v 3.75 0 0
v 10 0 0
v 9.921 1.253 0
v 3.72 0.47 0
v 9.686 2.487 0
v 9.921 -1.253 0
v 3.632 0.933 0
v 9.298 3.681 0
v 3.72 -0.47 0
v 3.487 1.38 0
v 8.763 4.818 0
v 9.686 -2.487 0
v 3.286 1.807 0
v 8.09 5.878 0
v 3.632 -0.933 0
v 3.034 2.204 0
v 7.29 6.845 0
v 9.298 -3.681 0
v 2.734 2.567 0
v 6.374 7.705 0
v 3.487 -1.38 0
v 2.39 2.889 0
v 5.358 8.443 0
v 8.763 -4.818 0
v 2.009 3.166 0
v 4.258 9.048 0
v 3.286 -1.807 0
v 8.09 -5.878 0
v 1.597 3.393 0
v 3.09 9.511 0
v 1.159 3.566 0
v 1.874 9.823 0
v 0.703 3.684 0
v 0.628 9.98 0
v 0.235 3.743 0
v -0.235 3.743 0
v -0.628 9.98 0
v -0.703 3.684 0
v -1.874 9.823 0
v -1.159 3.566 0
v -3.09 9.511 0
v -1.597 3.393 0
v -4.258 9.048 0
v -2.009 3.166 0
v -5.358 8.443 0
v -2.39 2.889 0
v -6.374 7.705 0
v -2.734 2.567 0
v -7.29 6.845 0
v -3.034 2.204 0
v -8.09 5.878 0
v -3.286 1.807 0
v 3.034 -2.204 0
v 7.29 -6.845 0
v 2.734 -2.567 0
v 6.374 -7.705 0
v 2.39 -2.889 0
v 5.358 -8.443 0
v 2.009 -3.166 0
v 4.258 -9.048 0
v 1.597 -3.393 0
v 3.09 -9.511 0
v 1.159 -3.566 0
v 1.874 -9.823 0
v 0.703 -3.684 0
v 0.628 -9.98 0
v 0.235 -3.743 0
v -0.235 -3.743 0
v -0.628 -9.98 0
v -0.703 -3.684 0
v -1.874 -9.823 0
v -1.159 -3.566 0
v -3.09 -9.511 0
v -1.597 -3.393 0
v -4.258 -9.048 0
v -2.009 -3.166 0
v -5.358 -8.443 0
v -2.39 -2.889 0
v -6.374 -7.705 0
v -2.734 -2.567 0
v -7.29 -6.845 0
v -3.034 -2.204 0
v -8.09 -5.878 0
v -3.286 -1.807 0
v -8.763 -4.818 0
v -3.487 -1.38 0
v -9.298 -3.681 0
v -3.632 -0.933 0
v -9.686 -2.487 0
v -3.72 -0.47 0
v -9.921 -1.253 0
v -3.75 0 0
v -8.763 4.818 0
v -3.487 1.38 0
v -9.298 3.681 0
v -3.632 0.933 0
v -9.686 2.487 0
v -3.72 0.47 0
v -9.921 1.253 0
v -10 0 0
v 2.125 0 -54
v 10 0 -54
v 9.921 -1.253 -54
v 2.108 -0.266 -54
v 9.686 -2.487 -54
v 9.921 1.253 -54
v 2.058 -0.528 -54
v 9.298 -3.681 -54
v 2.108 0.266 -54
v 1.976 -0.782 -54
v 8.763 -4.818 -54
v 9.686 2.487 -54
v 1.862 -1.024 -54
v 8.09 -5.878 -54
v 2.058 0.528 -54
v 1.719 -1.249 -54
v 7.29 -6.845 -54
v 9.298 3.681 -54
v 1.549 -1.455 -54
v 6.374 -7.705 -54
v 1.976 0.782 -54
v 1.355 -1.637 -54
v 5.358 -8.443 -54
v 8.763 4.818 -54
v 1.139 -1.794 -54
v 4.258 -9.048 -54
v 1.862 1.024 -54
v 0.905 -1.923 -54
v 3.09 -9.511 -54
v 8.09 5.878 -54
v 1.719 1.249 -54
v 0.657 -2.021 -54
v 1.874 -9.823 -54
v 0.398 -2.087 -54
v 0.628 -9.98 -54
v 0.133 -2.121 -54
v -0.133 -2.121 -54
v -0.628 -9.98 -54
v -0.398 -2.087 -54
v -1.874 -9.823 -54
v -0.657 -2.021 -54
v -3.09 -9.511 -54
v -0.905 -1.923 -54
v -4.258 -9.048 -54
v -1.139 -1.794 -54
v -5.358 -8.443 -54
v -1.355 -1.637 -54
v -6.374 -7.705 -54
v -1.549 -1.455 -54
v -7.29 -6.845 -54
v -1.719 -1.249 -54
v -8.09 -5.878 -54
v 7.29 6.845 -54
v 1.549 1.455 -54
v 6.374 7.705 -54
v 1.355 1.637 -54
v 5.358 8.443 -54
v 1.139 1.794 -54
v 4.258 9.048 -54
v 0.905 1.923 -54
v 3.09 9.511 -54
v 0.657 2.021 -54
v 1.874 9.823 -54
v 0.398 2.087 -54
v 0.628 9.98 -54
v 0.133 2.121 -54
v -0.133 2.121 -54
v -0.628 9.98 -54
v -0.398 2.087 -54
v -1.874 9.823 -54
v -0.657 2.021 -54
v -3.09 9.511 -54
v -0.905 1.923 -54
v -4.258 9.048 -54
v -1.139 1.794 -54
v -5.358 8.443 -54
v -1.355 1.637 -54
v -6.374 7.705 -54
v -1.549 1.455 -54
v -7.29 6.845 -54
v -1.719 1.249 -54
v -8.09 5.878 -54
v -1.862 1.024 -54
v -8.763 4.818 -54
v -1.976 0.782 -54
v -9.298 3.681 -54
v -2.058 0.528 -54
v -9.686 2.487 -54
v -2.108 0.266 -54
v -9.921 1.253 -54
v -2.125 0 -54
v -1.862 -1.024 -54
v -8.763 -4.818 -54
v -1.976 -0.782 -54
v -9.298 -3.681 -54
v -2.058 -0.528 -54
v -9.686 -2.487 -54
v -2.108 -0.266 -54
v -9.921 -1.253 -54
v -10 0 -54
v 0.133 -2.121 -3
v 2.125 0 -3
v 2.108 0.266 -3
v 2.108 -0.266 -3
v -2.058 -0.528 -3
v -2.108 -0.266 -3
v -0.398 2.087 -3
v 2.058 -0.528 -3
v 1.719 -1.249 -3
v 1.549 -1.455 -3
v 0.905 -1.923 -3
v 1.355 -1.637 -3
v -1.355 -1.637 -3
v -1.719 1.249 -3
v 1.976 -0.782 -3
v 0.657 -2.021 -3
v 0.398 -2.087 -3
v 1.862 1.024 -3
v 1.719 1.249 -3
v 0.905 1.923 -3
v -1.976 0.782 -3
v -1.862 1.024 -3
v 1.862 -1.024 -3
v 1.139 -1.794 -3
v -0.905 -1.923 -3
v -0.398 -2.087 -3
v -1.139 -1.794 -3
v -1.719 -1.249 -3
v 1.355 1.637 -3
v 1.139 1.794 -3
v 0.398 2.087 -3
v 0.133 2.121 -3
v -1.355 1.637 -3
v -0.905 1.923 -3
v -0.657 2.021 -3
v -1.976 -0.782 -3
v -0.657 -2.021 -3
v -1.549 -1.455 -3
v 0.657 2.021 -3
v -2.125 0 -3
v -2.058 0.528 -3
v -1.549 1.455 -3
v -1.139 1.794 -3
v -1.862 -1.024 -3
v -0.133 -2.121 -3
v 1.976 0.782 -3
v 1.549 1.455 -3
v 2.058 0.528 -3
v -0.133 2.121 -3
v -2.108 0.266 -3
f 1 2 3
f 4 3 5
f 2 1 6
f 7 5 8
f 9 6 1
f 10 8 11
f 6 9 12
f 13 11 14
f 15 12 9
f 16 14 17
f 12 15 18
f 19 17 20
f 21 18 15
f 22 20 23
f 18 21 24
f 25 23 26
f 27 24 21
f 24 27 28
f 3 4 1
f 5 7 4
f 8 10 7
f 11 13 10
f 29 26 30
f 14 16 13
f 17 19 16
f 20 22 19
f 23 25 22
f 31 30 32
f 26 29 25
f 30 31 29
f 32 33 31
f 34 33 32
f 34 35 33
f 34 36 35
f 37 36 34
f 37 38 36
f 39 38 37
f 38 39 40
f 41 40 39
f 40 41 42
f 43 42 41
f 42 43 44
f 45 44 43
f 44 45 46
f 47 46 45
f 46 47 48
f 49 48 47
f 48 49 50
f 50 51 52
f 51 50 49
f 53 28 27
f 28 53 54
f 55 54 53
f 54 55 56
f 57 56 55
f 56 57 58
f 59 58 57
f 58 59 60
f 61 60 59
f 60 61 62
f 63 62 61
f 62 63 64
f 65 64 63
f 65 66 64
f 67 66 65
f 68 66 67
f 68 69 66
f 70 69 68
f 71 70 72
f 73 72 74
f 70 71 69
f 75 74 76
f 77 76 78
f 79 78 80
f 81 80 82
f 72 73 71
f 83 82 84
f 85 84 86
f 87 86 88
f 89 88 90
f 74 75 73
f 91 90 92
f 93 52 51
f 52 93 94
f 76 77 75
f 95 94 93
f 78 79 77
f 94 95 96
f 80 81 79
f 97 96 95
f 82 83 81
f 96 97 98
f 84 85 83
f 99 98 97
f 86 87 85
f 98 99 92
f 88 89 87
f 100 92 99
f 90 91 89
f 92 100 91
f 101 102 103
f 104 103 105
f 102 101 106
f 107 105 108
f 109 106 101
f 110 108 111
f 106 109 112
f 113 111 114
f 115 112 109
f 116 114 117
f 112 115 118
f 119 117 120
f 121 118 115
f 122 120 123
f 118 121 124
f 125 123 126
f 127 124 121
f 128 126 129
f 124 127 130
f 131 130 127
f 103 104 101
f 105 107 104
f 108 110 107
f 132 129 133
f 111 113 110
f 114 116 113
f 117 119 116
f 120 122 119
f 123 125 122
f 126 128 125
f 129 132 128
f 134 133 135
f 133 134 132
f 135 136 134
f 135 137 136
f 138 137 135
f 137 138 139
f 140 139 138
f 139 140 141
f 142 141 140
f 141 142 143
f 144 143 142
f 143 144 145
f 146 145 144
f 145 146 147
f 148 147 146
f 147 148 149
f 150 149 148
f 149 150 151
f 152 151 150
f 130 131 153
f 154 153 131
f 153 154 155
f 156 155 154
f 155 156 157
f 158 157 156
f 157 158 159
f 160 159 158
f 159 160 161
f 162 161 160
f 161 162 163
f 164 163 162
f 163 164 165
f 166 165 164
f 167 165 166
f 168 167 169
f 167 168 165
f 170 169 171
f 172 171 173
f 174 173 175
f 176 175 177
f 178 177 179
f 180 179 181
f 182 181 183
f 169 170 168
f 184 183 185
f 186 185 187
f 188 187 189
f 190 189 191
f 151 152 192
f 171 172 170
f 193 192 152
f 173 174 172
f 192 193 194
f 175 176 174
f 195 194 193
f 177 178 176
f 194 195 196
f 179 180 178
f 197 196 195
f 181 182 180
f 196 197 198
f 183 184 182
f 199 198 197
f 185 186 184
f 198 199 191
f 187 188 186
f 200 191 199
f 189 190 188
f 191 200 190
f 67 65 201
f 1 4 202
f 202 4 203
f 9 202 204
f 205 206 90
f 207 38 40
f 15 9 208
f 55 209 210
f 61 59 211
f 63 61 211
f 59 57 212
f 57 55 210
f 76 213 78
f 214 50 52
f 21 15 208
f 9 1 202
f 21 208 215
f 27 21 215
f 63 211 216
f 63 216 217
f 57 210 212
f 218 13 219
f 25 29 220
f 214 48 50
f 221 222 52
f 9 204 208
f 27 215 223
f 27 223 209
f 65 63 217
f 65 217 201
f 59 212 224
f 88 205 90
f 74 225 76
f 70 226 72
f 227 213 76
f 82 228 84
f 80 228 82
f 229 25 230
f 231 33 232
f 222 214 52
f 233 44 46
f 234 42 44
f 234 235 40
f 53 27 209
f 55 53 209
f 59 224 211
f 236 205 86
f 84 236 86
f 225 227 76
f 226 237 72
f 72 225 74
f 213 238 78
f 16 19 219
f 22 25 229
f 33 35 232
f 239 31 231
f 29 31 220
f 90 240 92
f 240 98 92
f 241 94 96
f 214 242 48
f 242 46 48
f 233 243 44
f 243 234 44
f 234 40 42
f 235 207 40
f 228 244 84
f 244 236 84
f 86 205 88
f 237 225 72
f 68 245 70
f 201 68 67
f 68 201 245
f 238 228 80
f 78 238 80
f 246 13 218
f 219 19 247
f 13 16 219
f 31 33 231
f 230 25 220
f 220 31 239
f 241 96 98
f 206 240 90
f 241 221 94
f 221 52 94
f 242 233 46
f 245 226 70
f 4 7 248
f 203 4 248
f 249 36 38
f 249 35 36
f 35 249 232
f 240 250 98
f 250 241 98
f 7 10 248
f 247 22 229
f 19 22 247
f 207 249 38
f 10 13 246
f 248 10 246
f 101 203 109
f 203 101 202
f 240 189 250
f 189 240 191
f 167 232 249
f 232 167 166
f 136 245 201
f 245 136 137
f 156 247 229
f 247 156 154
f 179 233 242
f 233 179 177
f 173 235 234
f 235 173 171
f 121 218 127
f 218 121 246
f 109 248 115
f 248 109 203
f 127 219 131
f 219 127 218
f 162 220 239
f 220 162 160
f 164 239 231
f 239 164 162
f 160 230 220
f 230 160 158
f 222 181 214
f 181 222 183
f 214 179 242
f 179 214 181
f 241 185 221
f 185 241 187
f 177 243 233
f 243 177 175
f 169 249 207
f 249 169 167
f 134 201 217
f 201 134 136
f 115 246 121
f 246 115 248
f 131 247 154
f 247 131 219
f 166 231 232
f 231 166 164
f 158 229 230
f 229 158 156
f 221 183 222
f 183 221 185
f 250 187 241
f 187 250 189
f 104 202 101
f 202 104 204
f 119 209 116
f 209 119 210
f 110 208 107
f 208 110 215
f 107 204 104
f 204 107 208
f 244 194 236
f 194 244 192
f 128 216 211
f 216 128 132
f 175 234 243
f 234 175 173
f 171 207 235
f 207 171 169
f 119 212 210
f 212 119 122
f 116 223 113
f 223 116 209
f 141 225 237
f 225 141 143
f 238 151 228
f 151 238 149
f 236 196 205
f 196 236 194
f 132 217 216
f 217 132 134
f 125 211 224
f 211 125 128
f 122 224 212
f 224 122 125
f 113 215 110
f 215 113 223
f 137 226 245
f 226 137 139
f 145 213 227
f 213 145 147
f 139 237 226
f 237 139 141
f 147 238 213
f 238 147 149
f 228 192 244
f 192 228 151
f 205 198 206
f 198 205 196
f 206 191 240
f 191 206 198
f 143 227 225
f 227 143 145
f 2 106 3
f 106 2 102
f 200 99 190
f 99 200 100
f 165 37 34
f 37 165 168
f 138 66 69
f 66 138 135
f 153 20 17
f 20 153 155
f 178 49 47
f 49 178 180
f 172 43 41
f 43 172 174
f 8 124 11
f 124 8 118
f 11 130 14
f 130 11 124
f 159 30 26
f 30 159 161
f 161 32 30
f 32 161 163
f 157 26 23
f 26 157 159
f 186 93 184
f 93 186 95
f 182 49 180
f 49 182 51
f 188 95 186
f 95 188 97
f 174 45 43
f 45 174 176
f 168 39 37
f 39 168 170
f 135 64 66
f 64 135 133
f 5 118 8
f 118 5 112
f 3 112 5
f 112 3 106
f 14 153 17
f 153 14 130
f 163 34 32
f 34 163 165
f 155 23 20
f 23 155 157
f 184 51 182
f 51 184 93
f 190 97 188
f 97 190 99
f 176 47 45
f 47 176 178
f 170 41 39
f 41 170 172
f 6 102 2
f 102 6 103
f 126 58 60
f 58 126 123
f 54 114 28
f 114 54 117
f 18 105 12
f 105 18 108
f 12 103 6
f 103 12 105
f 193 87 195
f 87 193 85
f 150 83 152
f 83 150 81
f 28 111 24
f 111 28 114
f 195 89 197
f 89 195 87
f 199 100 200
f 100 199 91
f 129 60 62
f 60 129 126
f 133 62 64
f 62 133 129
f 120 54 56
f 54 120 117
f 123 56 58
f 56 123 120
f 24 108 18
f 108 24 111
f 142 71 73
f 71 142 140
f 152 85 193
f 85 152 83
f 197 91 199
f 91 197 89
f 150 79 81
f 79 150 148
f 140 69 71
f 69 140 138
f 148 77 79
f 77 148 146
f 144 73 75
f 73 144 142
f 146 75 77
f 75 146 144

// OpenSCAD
$fn = 50;


difference() {
	union() {
		translate(v = [0, 0, -54.0000000000]) {
			cylinder(h = 54, r = 10.0000000000);
		}
		cylinder(h = 0, r = 16.0000000000);
	}
	union() {
		translate(v = [0, 0, 0]) {
			rotate(a = [0, 0, 0]) {
				difference() {
					union() {
						#translate(v = [0, 0, -54.0000000000]) {
							cylinder(h = 54, r = 2.0000000000);
						}
						#translate(v = [0, 0, -3]) {
							cylinder(h = 3, r = 10.0000000000, r1 = 2.1250000000, r2 = 3.7500000000);
						}
						#translate(v = [0, 0, -54.0000000000]) {
							cylinder(h = 54, r = 2.1250000000);
						}
						#translate(v = [0, 0, -54.0000000000]) {
							cylinder(h = 54, r = 2.0000000000);
						}
					}
					union();
				}
			}
		}
	}
}
